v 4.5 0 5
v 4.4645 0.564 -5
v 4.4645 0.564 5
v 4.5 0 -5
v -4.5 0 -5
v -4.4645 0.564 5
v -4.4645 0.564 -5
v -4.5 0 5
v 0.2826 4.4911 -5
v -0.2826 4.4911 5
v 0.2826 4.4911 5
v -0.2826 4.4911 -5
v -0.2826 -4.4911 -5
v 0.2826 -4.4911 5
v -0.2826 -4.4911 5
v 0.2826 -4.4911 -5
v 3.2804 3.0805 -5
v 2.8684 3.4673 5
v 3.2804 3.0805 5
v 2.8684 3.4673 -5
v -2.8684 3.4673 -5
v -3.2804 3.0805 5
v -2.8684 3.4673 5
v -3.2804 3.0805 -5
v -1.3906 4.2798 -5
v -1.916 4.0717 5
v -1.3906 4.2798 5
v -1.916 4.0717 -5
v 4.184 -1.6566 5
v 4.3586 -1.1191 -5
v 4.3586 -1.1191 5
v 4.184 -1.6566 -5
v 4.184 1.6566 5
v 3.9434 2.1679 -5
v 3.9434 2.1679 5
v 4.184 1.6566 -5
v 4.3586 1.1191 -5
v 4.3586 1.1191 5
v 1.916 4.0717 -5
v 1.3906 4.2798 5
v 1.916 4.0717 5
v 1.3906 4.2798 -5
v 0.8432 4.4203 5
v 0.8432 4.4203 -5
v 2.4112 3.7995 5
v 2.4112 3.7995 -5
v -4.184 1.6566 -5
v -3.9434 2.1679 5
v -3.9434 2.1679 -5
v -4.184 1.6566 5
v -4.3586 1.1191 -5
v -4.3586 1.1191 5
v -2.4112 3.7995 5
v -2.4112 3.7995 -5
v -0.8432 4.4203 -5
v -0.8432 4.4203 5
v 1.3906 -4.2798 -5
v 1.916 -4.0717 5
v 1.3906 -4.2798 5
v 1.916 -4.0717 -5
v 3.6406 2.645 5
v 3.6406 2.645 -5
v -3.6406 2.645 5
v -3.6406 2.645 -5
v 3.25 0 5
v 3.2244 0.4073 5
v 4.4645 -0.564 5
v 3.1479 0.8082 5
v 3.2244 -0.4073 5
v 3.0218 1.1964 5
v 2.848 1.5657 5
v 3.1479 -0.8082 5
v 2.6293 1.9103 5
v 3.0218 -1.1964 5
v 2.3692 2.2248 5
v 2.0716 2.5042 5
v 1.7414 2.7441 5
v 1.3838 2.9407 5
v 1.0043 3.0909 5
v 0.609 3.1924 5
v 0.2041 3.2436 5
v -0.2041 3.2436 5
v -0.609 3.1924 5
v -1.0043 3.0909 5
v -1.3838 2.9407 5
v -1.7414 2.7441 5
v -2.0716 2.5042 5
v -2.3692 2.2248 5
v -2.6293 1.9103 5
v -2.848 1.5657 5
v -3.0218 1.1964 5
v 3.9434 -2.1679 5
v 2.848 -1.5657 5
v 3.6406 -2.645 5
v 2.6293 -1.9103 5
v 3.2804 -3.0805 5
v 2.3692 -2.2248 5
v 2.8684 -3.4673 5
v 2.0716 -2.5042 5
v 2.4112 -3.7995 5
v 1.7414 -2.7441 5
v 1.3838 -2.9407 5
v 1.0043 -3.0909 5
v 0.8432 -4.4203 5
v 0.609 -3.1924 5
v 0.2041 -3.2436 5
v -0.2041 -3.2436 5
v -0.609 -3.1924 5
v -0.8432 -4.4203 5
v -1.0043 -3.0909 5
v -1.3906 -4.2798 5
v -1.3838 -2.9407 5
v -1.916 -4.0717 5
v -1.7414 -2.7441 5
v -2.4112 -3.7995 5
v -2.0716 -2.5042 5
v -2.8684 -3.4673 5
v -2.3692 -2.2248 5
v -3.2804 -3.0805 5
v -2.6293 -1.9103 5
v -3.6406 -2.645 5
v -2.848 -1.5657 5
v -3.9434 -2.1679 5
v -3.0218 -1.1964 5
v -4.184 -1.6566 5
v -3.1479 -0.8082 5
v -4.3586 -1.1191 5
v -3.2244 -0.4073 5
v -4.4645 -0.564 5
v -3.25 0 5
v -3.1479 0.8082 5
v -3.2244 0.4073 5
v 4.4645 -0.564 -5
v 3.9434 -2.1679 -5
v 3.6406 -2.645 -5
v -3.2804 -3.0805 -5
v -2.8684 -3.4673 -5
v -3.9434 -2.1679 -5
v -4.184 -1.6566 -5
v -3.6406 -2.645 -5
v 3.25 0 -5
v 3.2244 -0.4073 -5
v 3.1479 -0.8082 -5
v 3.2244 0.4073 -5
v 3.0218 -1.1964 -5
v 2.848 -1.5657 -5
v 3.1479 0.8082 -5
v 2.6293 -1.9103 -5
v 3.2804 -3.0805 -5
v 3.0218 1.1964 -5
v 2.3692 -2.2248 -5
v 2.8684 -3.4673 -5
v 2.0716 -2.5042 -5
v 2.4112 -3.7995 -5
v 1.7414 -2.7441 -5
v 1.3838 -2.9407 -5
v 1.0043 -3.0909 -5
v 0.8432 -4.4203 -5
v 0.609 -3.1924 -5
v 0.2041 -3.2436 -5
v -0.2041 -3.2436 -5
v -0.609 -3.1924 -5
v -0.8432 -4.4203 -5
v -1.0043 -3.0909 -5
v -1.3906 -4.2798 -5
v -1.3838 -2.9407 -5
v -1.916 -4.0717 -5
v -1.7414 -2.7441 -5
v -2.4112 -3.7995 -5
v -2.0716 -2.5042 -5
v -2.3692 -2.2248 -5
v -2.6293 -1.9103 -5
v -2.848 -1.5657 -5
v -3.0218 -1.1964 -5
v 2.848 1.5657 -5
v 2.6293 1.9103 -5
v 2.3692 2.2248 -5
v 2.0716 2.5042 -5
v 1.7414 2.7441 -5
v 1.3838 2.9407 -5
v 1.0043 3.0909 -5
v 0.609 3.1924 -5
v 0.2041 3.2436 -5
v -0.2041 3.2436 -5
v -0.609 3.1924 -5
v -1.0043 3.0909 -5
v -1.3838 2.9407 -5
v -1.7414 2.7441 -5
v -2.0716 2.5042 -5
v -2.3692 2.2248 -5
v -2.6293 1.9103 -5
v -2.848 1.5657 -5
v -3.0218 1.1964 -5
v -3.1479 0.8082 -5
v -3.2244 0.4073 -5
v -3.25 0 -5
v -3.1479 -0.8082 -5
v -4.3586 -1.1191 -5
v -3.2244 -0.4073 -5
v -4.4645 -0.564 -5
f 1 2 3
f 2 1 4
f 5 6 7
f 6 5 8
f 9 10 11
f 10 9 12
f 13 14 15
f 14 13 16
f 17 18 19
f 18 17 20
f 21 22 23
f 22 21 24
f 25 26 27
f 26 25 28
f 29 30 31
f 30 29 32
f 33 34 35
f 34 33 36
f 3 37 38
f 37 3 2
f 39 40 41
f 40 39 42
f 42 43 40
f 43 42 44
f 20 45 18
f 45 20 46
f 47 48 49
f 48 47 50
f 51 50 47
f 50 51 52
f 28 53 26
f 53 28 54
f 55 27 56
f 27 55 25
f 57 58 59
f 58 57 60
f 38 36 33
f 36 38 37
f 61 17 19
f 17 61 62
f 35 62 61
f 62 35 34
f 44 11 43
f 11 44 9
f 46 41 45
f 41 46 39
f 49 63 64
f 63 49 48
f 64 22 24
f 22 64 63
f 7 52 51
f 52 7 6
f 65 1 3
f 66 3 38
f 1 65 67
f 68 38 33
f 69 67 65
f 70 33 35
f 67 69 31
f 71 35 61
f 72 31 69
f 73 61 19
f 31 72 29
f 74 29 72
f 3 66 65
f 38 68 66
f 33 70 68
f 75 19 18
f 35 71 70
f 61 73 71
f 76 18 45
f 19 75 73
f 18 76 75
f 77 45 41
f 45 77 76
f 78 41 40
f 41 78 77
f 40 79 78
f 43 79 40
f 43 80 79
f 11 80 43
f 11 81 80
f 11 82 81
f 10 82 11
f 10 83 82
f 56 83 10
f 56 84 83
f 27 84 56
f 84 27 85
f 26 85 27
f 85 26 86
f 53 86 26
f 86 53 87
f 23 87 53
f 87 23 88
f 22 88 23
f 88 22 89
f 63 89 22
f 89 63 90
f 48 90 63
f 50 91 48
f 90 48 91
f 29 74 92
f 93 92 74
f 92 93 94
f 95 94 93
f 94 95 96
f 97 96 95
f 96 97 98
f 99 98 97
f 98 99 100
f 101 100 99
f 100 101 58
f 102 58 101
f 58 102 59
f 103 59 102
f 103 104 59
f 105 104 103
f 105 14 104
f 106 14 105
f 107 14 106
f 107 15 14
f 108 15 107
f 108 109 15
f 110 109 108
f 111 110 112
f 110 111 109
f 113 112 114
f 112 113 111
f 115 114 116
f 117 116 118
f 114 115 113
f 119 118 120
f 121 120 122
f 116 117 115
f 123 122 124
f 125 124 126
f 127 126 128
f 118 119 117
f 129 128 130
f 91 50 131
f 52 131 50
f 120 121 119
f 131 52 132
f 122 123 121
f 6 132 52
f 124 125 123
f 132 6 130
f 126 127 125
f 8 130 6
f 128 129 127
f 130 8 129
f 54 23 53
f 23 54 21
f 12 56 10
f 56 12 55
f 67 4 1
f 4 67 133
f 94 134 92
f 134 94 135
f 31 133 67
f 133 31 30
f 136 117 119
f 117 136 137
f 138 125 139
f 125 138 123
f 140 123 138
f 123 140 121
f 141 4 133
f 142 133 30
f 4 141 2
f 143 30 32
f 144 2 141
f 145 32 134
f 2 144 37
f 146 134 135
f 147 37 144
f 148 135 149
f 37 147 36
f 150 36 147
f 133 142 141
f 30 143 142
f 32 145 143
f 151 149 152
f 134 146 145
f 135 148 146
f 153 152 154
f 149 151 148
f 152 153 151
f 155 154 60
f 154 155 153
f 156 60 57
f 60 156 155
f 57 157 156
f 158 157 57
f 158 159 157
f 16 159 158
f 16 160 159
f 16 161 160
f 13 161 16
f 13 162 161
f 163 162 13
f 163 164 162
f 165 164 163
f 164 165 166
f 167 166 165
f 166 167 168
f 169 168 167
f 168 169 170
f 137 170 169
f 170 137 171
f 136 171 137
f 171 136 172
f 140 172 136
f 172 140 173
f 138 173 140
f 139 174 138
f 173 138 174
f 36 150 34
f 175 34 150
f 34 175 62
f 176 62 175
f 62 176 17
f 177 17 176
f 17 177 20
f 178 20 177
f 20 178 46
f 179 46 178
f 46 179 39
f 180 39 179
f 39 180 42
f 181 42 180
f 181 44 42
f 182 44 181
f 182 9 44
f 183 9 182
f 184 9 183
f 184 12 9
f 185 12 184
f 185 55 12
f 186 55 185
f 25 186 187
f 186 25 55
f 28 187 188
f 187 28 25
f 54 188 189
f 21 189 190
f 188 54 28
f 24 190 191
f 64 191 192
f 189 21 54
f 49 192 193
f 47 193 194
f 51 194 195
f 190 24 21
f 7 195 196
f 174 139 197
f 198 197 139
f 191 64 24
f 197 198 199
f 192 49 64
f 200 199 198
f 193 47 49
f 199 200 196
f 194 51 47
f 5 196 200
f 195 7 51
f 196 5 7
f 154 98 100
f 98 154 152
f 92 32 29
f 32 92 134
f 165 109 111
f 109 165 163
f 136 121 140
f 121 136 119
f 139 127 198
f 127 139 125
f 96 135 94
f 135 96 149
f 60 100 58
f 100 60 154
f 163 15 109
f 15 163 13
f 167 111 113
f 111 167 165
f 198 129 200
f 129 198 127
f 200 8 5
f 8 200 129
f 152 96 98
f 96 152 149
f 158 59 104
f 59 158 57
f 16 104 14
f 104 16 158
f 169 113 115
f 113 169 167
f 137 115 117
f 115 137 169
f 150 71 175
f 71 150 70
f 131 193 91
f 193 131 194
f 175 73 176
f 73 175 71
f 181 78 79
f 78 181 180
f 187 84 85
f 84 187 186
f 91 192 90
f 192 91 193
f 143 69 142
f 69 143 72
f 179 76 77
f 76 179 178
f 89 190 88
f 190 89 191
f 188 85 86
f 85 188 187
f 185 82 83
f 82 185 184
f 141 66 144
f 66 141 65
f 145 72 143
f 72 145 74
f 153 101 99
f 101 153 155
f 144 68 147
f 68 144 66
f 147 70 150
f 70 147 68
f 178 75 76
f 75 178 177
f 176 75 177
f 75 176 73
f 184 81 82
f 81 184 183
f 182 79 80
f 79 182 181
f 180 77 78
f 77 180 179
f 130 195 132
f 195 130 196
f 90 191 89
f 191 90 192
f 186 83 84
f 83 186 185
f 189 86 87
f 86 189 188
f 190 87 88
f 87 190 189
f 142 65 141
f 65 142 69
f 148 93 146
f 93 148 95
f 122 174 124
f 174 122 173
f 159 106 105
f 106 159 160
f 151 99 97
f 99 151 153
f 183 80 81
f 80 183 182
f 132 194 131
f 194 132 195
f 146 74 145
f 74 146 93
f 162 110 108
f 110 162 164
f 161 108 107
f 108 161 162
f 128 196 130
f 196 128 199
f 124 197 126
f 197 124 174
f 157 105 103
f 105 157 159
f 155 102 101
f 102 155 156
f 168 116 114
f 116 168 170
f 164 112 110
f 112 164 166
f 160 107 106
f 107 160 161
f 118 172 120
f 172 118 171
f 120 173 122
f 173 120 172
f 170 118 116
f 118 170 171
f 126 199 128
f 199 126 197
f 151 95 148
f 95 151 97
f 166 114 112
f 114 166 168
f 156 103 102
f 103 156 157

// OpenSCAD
$fn = 50;


difference() {
	union() {
		translate(v = [0, 0, -5.0000000000]) {
			cylinder(h = 10, r = 4.5000000000);
		}
	}
	union() {
		translate(v = [0, 0, -100.0000000000]) {
			cylinder(h = 200, r = 3.2500000000);
		}
	}
}
